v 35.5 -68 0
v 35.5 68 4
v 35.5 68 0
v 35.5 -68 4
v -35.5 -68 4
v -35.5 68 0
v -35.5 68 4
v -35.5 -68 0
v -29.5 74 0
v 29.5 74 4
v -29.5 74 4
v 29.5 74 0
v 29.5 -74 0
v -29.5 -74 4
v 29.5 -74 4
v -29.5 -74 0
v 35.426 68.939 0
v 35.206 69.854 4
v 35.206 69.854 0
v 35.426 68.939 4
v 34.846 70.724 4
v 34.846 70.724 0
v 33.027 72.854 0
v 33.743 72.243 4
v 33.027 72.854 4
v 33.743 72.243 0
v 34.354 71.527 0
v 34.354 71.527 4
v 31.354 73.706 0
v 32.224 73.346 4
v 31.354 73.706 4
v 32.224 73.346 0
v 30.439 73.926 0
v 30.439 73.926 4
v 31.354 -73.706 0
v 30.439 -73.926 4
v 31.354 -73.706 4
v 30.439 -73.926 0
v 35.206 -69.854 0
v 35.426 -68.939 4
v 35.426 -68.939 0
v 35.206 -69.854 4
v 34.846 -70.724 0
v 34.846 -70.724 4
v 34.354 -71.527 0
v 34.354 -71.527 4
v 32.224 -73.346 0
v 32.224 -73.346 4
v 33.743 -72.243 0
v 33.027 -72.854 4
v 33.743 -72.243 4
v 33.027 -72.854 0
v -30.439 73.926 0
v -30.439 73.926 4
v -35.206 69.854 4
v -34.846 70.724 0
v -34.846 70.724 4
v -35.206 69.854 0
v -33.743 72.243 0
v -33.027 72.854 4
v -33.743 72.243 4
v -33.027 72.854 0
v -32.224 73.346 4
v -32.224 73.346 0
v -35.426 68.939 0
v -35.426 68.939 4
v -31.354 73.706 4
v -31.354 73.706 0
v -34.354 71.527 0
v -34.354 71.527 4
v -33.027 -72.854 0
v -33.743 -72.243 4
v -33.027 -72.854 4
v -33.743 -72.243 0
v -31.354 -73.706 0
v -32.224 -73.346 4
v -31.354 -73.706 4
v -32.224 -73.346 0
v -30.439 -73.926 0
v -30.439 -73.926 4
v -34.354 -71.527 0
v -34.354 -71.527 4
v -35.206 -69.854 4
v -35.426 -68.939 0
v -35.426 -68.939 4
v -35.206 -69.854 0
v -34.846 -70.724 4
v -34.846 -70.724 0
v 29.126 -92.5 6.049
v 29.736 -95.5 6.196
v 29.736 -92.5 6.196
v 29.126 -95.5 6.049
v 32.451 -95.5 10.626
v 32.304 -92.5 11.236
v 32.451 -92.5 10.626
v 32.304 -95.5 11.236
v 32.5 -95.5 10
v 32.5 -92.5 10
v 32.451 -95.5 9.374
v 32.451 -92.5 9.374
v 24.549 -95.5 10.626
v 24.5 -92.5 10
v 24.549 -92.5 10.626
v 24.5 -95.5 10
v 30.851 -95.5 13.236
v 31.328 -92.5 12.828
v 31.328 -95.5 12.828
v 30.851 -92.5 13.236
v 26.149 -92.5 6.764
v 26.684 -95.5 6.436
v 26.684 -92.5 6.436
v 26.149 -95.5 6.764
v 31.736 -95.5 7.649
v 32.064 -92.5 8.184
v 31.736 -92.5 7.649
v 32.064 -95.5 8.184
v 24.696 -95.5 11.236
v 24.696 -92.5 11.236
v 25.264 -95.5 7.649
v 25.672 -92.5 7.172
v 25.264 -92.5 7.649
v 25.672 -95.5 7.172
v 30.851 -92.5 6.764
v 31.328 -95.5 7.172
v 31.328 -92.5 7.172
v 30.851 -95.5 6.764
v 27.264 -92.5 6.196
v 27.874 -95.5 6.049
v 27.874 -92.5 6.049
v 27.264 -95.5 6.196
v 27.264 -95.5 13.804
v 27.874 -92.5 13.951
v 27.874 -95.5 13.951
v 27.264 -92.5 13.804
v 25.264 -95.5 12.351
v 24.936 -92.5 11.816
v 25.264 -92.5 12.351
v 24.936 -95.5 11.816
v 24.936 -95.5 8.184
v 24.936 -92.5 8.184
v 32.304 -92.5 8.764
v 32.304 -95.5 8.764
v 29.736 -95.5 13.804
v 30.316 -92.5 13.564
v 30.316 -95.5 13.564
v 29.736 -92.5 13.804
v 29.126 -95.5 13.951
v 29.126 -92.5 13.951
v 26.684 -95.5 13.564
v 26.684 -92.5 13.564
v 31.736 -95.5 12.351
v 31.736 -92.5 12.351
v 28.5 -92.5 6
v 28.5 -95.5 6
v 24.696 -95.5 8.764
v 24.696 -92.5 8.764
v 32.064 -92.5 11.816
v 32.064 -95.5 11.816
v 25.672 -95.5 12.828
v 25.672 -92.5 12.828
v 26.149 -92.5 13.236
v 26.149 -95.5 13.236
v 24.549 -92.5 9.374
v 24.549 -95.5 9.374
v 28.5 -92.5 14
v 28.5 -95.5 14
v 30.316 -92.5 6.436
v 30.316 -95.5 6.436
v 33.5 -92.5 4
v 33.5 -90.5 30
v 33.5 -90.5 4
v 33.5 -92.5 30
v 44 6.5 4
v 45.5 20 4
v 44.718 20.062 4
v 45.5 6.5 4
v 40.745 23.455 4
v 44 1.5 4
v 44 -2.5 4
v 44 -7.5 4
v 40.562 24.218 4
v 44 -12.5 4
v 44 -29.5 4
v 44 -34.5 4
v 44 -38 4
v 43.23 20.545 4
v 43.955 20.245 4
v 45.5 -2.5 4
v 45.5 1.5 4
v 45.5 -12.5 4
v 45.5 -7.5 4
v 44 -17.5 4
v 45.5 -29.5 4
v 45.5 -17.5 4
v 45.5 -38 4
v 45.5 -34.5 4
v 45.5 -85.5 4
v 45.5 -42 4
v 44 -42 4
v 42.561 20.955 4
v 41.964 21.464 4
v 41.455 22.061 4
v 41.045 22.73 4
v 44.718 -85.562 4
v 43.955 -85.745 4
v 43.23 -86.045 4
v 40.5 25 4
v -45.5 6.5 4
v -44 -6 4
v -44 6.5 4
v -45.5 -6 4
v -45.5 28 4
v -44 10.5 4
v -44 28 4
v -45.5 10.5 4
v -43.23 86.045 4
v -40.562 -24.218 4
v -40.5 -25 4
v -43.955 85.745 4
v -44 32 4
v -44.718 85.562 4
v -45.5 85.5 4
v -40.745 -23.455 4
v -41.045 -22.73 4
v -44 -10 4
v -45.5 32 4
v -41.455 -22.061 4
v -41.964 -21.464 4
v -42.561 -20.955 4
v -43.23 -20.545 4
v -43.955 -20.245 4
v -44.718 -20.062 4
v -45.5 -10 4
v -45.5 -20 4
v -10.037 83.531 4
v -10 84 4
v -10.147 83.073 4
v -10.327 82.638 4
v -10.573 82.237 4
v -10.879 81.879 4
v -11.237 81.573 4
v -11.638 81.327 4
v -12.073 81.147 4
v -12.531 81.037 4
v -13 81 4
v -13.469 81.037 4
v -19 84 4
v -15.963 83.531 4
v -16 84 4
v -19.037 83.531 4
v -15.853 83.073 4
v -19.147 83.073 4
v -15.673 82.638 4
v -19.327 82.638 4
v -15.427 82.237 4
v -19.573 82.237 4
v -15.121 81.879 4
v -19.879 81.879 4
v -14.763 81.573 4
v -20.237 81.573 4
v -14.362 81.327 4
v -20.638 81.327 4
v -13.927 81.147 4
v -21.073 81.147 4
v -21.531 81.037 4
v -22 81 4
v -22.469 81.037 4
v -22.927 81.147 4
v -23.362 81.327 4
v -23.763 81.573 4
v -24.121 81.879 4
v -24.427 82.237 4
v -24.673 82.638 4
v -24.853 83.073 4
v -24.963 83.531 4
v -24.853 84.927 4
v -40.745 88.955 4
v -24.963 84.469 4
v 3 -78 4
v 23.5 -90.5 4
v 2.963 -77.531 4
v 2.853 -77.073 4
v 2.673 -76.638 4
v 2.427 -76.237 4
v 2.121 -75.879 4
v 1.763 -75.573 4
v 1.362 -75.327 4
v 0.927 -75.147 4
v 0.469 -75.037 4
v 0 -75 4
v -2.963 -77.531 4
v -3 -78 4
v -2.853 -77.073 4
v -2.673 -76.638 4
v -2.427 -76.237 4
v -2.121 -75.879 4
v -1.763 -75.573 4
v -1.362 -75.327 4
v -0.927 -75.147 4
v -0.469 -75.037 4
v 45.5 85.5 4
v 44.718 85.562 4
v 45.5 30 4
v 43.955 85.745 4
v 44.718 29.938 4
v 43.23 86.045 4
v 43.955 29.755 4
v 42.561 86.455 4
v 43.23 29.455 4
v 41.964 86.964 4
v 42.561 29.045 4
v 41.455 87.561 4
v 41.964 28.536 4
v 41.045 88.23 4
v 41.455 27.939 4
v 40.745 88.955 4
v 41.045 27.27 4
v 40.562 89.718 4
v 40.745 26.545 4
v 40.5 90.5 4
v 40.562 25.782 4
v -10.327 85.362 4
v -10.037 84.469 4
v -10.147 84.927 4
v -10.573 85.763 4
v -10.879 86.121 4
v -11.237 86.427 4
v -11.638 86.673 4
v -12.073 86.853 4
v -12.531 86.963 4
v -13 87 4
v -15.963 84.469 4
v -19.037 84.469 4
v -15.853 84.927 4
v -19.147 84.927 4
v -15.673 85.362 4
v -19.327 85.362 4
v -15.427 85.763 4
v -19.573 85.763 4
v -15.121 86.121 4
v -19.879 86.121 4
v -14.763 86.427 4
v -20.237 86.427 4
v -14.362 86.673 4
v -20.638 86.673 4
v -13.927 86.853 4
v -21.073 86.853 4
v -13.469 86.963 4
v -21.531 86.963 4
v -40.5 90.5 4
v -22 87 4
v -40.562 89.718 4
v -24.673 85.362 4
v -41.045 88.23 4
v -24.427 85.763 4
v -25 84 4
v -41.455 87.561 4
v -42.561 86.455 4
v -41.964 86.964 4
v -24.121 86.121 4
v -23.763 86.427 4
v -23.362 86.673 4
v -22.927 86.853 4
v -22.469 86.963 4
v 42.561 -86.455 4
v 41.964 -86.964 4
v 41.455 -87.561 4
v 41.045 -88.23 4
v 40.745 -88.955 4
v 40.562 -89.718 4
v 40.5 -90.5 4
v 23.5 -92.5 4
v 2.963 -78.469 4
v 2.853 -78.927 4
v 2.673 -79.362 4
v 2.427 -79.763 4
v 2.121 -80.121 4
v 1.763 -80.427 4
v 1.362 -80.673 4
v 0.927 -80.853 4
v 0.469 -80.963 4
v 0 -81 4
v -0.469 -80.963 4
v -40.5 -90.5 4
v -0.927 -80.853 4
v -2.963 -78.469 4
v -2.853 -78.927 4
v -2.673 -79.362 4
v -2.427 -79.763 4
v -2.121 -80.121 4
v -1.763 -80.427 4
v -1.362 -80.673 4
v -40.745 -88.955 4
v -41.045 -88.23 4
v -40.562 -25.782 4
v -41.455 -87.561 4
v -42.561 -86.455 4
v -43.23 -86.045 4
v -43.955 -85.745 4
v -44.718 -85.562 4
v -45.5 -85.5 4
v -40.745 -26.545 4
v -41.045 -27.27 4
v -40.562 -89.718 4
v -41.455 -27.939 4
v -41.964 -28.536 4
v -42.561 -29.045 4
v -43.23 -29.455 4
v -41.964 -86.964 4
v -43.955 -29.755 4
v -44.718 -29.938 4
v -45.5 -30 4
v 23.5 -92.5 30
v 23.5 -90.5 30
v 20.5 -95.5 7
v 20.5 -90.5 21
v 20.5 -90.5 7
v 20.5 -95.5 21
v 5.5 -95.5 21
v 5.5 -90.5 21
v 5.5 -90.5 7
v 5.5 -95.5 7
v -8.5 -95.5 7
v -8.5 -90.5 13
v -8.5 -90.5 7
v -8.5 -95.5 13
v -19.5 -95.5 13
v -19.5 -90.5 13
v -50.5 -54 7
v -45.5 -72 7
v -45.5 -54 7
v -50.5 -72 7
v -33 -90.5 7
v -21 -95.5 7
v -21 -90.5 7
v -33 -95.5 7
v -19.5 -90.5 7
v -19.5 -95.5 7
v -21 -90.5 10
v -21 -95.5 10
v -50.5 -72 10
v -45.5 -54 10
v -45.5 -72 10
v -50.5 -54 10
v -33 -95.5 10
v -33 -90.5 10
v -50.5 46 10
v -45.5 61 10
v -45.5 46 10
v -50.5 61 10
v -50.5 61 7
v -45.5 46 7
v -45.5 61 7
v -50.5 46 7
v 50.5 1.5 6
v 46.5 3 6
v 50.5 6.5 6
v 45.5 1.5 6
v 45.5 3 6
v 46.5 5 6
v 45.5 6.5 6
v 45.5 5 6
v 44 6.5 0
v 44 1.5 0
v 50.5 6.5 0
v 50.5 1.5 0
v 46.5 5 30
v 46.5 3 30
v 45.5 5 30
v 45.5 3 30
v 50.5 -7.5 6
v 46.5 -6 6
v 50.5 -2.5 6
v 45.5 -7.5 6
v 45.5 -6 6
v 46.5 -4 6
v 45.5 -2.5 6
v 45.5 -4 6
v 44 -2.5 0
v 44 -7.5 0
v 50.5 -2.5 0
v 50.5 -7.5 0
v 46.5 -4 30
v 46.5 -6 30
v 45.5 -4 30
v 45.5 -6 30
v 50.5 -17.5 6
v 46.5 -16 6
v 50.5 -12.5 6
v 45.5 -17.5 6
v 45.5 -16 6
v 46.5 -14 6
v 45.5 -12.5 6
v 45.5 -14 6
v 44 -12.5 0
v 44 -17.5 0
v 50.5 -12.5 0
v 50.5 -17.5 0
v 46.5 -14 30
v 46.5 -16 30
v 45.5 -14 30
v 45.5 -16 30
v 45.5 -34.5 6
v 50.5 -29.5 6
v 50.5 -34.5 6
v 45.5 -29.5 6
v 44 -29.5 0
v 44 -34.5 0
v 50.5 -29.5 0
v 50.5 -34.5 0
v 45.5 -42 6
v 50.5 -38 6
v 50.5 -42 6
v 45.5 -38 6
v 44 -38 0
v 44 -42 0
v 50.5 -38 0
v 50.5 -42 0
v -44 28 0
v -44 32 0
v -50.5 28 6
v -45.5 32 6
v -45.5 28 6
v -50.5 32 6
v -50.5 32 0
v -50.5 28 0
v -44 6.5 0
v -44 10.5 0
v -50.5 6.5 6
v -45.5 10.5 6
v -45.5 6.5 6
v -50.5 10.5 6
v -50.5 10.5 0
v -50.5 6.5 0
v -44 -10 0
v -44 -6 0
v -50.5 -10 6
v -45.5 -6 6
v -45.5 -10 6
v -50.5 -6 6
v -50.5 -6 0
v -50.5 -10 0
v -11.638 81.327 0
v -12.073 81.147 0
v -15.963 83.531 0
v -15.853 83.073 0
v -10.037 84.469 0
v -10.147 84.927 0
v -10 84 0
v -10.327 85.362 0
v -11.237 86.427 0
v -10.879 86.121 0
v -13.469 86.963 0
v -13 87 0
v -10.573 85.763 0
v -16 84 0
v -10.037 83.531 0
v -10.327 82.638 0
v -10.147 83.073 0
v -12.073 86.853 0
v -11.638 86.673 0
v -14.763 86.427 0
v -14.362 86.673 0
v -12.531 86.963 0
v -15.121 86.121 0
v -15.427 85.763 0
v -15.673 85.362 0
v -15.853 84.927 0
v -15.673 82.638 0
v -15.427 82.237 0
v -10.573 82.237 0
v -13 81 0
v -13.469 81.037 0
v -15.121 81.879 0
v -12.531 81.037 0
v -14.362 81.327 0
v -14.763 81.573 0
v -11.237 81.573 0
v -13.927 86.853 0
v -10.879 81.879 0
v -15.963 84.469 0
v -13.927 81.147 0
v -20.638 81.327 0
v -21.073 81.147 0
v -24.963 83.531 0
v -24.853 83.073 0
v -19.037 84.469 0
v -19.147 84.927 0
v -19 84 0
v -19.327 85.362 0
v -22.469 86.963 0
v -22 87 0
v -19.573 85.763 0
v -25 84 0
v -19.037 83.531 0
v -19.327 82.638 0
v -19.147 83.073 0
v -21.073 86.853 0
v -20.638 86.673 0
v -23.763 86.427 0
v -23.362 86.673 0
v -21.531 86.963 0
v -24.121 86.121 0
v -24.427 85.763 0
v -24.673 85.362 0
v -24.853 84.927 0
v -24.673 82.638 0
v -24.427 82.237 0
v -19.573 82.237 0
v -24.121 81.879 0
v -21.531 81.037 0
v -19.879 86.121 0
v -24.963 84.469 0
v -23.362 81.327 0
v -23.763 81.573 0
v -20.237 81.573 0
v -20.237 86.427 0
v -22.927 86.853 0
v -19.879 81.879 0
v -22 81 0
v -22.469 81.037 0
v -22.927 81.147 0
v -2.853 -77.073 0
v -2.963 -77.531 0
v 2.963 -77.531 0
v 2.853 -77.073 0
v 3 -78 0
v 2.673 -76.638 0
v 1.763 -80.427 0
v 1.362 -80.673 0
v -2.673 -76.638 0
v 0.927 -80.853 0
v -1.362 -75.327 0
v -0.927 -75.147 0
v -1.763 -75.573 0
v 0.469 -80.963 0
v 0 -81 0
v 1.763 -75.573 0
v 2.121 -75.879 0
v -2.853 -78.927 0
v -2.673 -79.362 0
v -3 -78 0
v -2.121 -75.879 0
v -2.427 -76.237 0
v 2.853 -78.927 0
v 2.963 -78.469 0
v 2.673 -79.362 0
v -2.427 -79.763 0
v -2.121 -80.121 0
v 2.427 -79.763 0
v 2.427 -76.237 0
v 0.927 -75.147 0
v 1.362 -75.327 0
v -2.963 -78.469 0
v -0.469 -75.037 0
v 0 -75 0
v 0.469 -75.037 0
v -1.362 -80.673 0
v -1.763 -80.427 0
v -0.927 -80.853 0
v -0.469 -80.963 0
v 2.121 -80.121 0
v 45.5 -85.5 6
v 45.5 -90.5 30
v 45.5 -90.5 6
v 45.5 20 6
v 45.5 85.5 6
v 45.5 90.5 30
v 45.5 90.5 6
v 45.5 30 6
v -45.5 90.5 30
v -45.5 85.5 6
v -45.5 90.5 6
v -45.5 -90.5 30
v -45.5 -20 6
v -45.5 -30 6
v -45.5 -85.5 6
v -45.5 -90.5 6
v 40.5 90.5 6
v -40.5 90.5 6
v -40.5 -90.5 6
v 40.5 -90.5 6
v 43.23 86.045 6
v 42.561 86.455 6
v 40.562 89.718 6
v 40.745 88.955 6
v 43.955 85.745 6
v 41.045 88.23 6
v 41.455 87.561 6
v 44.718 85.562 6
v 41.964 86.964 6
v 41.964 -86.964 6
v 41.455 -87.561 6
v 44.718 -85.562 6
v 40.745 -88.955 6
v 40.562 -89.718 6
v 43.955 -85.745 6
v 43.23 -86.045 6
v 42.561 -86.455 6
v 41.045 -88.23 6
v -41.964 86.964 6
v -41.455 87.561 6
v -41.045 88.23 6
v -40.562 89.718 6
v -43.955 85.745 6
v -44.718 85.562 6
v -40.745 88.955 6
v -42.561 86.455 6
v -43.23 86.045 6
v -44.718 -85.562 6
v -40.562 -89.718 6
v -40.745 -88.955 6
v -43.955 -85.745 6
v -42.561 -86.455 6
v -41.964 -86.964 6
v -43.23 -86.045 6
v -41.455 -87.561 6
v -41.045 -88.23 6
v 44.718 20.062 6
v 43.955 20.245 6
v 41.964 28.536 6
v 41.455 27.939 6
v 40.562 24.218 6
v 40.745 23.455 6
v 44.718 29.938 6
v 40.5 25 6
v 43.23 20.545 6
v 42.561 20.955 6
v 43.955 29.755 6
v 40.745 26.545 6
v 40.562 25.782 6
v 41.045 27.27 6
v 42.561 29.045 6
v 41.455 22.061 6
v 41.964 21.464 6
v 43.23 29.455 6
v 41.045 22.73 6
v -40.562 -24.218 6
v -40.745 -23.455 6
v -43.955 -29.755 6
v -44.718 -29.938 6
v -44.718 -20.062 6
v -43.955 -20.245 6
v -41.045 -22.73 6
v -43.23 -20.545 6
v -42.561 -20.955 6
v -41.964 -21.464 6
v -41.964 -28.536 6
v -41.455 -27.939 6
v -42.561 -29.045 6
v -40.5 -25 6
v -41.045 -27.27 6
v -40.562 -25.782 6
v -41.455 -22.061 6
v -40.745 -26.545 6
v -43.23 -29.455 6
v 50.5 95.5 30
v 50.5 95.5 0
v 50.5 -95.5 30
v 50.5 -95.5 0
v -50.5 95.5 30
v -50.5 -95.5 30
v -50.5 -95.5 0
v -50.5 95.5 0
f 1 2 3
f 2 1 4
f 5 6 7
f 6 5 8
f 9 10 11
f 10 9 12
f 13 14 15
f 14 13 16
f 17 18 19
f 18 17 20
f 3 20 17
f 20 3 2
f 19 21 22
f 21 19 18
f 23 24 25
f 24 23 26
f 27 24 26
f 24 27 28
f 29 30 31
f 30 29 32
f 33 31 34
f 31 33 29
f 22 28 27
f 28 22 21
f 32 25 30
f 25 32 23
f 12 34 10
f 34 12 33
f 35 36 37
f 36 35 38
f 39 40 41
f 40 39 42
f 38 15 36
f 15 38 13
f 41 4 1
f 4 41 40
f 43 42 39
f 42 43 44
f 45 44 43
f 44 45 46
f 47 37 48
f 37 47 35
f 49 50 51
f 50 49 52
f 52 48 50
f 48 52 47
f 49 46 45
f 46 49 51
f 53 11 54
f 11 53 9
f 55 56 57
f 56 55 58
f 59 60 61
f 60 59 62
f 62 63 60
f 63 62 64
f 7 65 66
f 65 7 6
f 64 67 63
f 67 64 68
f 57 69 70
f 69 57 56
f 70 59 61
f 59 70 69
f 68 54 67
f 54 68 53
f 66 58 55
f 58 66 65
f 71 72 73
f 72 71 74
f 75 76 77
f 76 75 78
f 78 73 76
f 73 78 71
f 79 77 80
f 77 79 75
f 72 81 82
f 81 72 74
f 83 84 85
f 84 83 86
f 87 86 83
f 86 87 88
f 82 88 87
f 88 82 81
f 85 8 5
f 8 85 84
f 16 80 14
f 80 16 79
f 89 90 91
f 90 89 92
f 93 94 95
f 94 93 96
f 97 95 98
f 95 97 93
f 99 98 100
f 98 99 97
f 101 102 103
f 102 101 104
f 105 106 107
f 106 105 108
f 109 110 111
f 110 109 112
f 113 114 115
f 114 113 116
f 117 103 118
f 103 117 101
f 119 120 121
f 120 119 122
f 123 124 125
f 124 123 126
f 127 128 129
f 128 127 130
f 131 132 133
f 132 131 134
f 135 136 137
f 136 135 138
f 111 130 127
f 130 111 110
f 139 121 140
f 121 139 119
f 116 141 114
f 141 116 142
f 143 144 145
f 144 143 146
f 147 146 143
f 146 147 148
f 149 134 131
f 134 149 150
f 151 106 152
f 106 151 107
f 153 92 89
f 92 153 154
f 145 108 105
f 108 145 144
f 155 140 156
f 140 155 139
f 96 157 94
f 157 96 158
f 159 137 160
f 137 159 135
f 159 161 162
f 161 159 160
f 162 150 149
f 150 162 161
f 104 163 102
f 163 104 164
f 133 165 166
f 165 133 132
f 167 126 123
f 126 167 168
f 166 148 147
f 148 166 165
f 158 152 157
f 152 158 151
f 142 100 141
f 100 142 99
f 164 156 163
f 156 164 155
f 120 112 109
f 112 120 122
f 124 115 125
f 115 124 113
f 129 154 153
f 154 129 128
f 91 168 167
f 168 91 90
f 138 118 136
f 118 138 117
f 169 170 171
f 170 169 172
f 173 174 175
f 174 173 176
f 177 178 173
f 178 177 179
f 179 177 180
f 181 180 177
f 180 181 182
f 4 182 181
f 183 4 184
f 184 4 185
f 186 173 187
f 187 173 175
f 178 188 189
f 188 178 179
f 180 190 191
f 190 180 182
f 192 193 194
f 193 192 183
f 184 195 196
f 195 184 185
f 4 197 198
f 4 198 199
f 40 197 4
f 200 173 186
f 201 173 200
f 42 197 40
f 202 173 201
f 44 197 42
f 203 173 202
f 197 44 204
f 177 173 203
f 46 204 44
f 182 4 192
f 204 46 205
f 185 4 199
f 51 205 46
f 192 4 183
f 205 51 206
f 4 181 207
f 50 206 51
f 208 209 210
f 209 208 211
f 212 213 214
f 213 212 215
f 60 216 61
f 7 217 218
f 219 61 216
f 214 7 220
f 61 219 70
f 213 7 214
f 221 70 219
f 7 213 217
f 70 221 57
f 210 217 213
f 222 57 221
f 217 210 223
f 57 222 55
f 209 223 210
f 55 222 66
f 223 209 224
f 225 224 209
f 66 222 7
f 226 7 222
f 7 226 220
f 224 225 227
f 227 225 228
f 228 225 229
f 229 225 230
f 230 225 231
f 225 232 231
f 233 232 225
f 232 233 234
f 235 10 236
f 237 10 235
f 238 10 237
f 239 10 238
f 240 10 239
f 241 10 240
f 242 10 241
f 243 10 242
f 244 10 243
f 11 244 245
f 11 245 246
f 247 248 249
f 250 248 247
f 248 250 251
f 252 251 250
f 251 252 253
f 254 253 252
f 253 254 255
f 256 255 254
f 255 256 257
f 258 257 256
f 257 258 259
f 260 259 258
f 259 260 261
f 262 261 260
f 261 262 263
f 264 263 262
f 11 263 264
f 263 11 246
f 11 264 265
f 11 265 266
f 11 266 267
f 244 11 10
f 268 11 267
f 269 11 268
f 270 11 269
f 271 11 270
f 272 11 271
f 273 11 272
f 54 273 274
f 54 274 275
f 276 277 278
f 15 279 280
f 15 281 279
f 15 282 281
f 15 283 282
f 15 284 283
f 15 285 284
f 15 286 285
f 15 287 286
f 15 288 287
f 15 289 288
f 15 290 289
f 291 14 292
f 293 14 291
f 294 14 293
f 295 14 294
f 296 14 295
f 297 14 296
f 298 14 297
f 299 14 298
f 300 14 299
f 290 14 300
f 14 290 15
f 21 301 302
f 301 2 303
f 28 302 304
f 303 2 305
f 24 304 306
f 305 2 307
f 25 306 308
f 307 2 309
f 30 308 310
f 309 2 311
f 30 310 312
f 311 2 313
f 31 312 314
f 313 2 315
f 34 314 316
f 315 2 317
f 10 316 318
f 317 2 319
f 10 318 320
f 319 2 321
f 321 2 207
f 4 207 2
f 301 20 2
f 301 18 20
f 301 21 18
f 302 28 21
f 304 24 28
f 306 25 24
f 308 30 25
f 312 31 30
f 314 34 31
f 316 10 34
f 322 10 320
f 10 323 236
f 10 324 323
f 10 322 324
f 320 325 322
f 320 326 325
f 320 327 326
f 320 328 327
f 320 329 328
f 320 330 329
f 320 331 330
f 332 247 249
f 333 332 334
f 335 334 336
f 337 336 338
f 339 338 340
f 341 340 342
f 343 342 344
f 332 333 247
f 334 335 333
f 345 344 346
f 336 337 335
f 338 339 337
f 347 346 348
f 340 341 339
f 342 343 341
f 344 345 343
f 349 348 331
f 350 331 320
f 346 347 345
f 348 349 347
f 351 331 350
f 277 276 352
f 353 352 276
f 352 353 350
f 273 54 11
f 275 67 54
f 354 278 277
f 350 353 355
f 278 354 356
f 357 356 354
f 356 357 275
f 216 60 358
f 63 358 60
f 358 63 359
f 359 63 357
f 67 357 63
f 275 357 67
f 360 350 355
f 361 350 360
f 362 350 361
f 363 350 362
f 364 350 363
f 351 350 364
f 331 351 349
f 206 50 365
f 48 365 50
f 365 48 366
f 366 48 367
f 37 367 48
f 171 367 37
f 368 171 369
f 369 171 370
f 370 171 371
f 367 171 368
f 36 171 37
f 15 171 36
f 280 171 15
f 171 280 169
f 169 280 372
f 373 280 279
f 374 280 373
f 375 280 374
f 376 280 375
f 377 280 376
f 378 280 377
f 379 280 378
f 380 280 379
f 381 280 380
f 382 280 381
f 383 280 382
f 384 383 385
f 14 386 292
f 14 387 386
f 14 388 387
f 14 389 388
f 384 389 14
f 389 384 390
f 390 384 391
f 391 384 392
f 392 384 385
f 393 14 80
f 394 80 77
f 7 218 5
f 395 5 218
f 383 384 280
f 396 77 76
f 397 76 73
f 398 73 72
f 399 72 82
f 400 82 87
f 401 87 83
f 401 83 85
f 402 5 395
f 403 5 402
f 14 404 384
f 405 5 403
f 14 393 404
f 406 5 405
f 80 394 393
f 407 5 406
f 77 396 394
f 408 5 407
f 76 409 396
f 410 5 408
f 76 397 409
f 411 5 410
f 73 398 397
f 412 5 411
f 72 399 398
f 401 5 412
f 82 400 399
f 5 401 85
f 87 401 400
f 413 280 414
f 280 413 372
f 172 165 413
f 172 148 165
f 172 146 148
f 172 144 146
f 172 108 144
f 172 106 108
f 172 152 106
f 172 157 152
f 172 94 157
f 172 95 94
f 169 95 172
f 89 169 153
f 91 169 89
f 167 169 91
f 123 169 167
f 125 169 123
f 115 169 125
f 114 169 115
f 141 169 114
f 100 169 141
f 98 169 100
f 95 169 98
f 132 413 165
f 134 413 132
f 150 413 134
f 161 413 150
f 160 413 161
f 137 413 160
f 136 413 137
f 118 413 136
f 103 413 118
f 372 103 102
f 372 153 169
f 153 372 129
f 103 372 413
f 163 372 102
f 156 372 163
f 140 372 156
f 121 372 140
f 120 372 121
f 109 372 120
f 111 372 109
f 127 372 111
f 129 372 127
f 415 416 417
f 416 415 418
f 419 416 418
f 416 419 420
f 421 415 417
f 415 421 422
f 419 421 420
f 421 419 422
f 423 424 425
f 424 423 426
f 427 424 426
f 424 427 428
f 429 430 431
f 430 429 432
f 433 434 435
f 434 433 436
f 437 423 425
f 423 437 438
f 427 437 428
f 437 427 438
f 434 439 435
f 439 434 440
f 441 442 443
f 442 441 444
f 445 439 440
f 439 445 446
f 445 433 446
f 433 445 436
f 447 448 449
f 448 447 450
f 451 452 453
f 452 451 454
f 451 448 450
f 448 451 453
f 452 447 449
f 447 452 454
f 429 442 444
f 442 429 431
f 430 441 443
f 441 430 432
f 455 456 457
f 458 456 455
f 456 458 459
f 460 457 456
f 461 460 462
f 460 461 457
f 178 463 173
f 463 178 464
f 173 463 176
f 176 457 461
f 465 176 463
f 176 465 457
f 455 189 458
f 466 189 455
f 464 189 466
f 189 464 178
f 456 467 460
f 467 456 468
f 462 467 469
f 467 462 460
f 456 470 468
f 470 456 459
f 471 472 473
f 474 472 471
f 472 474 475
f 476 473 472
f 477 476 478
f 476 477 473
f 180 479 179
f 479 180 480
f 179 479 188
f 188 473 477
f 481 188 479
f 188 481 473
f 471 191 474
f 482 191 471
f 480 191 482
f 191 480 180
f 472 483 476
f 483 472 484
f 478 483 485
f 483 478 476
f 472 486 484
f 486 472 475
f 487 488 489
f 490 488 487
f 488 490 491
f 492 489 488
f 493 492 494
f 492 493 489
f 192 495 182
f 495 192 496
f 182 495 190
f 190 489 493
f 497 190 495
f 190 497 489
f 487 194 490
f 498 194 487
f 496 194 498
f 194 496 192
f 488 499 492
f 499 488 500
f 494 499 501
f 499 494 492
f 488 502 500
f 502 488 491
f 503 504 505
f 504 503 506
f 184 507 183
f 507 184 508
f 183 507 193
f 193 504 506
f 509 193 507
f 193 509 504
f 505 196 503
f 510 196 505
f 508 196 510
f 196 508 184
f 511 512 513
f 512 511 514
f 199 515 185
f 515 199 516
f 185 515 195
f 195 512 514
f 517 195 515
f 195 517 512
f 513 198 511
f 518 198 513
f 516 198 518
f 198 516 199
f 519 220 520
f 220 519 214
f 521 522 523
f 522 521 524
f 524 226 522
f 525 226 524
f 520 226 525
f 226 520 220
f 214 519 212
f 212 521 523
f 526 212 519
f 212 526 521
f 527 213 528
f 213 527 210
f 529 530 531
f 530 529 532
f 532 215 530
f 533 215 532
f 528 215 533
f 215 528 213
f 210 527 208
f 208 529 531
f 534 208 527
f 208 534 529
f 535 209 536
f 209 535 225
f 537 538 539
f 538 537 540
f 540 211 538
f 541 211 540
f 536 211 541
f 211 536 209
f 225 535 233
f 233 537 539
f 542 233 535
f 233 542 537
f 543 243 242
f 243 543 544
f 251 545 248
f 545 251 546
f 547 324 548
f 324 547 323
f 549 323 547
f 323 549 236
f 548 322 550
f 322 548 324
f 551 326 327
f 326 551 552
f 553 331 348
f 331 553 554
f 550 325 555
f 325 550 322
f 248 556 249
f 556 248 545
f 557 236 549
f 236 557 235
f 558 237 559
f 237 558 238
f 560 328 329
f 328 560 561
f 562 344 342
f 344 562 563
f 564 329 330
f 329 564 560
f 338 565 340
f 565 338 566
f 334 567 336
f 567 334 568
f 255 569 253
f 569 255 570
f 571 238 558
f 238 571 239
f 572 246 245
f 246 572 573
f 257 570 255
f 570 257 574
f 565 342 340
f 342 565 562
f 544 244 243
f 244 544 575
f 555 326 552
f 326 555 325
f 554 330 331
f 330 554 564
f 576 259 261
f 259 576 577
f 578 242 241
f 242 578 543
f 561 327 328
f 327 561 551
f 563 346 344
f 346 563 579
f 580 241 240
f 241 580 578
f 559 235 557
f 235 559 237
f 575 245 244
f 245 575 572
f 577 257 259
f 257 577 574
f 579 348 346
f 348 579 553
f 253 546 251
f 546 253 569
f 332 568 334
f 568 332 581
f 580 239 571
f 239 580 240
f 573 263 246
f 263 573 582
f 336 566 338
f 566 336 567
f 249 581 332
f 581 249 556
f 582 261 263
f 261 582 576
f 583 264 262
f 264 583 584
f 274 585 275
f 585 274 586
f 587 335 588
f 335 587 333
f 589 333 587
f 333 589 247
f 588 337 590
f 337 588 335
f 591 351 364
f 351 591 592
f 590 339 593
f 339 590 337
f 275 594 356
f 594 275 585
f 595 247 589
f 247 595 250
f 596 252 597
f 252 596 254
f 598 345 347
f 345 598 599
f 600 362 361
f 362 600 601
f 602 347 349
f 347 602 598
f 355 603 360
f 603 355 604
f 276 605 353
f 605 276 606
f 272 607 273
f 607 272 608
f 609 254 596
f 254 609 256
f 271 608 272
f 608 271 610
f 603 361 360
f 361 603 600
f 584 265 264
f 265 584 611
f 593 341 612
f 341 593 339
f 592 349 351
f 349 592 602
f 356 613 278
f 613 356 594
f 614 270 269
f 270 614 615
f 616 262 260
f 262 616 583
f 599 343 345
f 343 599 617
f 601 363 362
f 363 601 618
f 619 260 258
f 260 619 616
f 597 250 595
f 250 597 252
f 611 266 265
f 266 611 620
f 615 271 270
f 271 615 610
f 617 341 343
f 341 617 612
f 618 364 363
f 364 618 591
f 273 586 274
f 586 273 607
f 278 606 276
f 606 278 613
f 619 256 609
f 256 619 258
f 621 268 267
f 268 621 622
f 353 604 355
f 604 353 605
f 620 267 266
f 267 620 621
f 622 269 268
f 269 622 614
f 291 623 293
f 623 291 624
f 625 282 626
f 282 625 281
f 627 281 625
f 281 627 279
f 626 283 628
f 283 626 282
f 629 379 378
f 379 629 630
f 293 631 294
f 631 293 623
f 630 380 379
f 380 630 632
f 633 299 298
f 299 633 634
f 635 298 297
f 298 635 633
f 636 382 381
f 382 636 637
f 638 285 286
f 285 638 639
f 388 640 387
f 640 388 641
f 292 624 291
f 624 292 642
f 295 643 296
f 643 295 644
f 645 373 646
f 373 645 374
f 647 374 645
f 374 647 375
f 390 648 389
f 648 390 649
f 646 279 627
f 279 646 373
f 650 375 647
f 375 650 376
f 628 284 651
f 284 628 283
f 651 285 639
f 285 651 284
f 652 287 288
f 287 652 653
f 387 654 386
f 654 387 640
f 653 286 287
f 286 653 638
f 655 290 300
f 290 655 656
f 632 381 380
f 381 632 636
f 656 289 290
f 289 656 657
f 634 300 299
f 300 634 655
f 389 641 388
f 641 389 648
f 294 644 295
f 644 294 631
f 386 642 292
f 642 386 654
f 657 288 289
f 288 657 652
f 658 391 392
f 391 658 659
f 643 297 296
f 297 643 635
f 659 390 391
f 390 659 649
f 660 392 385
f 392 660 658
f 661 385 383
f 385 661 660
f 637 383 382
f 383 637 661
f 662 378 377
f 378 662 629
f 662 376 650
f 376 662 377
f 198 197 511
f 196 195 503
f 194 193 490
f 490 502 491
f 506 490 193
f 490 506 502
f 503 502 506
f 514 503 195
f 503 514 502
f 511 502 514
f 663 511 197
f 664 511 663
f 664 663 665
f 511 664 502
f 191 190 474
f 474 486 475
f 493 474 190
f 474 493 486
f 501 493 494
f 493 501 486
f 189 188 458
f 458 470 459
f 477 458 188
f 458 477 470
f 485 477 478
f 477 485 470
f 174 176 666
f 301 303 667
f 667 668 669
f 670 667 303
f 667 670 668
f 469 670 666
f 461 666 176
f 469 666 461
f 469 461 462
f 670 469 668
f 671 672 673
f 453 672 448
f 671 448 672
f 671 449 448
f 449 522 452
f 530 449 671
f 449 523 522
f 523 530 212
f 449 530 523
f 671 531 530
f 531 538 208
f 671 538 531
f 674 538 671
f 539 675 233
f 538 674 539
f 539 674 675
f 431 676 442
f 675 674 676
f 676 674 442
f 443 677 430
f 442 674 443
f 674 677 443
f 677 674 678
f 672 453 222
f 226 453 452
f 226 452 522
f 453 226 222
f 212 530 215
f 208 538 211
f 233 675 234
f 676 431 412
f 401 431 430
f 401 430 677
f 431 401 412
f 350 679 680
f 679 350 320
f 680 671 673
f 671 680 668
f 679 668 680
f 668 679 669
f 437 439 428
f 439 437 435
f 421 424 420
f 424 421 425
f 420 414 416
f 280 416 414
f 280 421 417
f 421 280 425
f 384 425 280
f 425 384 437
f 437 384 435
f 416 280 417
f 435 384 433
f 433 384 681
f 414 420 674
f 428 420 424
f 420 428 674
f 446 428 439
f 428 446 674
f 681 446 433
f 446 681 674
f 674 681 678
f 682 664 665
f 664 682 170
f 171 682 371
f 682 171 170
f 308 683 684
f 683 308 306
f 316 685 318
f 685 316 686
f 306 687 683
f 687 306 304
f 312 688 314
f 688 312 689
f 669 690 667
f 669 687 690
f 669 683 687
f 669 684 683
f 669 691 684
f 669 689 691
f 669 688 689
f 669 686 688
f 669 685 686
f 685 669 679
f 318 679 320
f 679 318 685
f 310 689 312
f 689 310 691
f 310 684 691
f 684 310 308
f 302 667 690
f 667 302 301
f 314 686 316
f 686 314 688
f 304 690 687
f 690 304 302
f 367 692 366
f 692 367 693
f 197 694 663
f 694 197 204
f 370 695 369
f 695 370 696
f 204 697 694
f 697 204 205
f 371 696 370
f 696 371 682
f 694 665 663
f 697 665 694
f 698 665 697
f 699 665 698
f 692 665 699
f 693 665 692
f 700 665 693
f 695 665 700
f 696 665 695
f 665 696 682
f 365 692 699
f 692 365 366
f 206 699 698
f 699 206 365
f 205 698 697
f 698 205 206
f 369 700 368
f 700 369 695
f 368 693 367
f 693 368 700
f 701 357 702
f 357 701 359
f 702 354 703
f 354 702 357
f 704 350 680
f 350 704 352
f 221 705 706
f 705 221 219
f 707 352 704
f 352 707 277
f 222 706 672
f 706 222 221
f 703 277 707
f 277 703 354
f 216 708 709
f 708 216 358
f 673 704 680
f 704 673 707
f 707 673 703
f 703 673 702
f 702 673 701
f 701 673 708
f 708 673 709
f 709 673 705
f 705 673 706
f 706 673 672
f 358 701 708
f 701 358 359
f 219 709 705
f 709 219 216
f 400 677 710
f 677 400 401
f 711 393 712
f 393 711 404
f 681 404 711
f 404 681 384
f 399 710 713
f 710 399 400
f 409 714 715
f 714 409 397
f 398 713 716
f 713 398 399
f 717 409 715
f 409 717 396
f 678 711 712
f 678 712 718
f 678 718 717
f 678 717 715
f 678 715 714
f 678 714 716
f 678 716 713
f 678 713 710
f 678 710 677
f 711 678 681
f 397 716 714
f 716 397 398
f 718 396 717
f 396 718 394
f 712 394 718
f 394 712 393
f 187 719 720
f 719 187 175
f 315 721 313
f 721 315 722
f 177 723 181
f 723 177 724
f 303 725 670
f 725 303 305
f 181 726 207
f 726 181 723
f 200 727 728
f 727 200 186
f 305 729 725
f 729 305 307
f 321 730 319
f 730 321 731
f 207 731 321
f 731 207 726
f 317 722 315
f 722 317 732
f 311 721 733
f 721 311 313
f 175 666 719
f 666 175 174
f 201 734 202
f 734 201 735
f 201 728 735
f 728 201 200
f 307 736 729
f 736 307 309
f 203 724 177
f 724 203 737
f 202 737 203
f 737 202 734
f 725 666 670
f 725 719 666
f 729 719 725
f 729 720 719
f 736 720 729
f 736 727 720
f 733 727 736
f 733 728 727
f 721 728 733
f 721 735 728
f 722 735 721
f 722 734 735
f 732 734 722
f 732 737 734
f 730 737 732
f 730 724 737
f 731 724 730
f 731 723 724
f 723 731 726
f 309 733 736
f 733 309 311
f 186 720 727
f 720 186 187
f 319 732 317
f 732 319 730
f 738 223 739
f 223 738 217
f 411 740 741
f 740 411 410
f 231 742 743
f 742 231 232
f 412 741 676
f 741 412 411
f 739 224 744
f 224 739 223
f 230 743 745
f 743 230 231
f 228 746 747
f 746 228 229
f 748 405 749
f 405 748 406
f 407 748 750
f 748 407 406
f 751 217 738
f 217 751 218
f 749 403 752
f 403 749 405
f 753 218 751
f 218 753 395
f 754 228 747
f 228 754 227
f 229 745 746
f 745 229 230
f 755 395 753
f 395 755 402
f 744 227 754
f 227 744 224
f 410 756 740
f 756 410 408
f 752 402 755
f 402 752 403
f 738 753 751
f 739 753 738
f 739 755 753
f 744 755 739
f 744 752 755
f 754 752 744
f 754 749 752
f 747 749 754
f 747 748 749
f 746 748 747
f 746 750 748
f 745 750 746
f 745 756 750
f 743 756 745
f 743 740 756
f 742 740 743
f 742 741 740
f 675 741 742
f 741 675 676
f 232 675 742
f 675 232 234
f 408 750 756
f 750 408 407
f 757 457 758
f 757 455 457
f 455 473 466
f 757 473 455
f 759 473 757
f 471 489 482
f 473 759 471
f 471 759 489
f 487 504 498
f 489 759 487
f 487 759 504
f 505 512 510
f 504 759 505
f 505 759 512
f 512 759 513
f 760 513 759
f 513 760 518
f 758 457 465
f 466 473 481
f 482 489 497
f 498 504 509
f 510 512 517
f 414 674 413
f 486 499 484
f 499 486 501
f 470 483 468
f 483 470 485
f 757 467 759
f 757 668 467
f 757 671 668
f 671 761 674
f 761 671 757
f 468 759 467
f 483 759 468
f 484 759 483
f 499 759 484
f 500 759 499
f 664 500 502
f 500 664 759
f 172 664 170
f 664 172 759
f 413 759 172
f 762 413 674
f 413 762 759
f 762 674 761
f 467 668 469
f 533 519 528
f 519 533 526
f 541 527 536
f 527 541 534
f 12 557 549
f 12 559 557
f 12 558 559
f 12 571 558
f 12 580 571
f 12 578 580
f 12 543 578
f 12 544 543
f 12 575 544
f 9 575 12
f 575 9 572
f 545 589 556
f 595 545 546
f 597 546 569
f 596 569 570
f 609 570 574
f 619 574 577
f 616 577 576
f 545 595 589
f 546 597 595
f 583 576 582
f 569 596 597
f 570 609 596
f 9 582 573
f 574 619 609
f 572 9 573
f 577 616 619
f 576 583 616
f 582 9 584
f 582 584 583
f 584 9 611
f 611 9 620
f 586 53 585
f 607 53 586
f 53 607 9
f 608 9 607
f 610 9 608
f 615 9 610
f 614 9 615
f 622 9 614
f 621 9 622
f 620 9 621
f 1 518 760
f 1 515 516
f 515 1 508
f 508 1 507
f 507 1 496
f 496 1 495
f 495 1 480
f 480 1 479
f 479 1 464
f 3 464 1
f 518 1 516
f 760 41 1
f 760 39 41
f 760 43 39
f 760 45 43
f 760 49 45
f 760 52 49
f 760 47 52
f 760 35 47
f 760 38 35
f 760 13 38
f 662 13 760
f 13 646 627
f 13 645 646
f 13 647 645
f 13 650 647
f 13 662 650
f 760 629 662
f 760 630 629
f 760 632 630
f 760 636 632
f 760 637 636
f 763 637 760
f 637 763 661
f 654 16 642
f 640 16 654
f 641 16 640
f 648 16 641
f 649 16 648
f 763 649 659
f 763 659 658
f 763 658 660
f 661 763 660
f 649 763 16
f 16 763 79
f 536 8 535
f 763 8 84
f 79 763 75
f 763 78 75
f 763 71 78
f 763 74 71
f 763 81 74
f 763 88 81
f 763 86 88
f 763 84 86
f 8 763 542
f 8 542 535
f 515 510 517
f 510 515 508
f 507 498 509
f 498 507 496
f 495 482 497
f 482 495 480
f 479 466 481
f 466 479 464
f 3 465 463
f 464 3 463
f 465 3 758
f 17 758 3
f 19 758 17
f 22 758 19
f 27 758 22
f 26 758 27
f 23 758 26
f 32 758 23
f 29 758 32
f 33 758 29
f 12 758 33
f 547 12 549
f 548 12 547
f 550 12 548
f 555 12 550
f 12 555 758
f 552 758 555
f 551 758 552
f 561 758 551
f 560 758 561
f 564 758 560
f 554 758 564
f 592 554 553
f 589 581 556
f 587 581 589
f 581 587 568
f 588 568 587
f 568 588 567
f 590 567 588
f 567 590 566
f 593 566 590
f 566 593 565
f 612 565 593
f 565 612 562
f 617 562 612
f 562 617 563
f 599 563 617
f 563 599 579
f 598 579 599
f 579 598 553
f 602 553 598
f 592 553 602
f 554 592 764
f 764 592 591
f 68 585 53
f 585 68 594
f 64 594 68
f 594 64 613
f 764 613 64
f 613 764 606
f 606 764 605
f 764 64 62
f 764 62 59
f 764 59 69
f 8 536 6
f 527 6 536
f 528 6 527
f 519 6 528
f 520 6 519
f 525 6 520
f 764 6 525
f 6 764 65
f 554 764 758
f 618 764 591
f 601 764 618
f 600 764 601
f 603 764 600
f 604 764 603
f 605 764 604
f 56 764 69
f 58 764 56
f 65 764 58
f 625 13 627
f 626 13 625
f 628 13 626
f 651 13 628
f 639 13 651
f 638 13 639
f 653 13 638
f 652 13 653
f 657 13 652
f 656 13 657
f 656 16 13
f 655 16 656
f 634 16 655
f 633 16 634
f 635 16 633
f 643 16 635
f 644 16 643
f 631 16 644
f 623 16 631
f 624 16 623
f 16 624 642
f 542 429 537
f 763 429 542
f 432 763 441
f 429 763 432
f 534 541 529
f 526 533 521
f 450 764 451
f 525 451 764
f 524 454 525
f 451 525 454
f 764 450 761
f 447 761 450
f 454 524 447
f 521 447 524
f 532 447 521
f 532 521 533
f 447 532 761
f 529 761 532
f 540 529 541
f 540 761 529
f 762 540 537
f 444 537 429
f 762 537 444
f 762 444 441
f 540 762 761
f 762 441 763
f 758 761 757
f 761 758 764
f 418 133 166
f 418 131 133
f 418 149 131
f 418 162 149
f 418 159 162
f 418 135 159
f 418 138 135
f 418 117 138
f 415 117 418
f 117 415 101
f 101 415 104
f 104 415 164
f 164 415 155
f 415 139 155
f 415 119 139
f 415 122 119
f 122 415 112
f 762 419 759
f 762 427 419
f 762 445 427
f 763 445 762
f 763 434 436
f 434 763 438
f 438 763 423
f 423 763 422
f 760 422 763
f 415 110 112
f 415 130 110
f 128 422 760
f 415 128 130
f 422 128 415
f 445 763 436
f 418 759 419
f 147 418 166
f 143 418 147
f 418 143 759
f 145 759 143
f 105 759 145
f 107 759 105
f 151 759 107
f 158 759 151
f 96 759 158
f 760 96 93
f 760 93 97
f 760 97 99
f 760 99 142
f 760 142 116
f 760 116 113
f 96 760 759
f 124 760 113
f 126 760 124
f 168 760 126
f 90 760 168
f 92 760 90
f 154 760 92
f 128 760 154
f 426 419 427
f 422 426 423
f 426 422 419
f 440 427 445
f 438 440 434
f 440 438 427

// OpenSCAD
/*
	Upside-down aproach for a devkit case: The devkit is put
	in from behind, display first. So all components
	(batteryholder, cam, ...) are freely reachable and
	sensitive parts (like TS-connector) are covered. And the
	processor heat can be taken care of as its just open - a
	fan can be mounted.

	The idea is to plug the devkit in (with the audio
	connector first) and put some hot glue to the corners to
	fix it.
*/
$fn=40;
module centered_cube(x, y, z) {
	translate([-x/2, -y/2, 0]) cube([x, y, z]);
}

inf = 200; //
border = 5; // case border width
display_height = 4; //
display_width = 71;
display_length = 148;
display_rounded = 6;
pcb_width = 91;
pcb_length = 181;
pcb_distance = 6; // from display surface

difference() {
	centered_cube(pcb_width+2*border, pcb_length+2*border, 30);
	difference() {
		union() {
			// display
			translate([0, 0, -inf/2]) union() {
				translate([0, 0, 0]) centered_cube(display_width, display_length-2*display_rounded, inf);
				translate([0, 0, 0]) centered_cube(display_width-2*display_rounded, display_length, inf);
				dx = display_width/2-display_rounded;
				dy = display_length/2-display_rounded;
				translate([dx, dy, 0]) cylinder(inf, display_rounded, display_rounded);
				translate([dx, -dy, 0]) cylinder(inf, display_rounded, display_rounded);
				translate([-dx, dy, 0]) cylinder(inf, display_rounded, display_rounded);
				translate([-dx, -dy, 0]) cylinder(inf, display_rounded, display_rounded);
			}
			// pcb
			translate([0, 0, display_height]) centered_cube(pcb_width, pcb_length, inf);
			// bottom holes
			let(dy = pcb_length / 2, dz = pcb_distance + 1) { // thickness of pcb
				// headphonejack
				translate([28.5, -dy, dz+3]) rotate([90, 0, 0]) cylinder(inf, 4, 4);
				translate([28.5, -dy, display_height]) centered_cube(10, 4, inf);
				// ethernet
				translate([13, -dy, dz]) centered_cube(15, inf, 14);
				// HDMI:
				// translate([-3, -dy, dz]) centered_cube(12, inf, 3);
				// USB-C:
				translate([-14, -dy, dz]) centered_cube(11, inf, 6);
				// SD Card:
				translate([-27, -dy, dz]) centered_cube(12, inf, 3);
				// SIM:
				translate([inf/2, 53.5, dz]) centered_cube(inf, 15, 3);
				// Securecard:
				translate([inf/2, -63, dz]) centered_cube(inf, 18, 3);
			}
			// side holes
			let(dx = pcb_width / 2 + 2, dz = pcb_distance-inf) {
				// Killswitch bt
				translate([dx, 4, dz]) centered_cube(border+2, 5, inf);
				translate([dx-2, 4, -inf/2]) centered_cube(2, 2, inf);
				// Killswitch wifi
				translate([dx, -5, dz]) centered_cube(border+2, 5, inf);
				translate([dx-2, -5, -inf/2]) centered_cube(2, 2, inf);
				// Killswitch mic/cam
				translate([dx, -15, dz]) centered_cube(border+2, 5, inf);
				translate([dx-2, -15, -inf/2]) centered_cube(2, 2, inf);
				// Switch bootmode:
				translate([dx, -32, dz]) centered_cube(border+2, 5, inf);
				// Button reset:
				translate([dx, -40, dz]) centered_cube(border+2, 4, inf);
				// Button power:
				translate([-dx, 30, dz]) centered_cube(border+2, 4, inf);
				// Button speaker up:
				translate([-dx, 8.5, dz]) centered_cube(border+2, 4, inf);
				// Button speaker down:
				translate([-dx, -8, dz]) centered_cube(border+2, 4, inf);
			}
			// front holes
			let(dz = -inf/2) {
				// ambient/aproximity sensors
				translate([-13, 84, dz]) cylinder(inf, 3, 3);
				translate([-22, 84, dz]) cylinder(inf, 3, 3);
				// Microphone:
				translate([0, -78, dz]) cylinder(inf, 3, 3);
			}
		}
		union() {
			// pillars
			let(dx = pcb_width / 2, dy = pcb_length / 2) {
				// corners
				translate([dx, dy, 0]) cylinder(6, border, border);
				translate([dx, -dy, 0]) cylinder(6, border, border);
				translate([-dx, dy, 0]) cylinder(6, border, border);
				translate([-dx, -dy, 0]) cylinder(6, border, border);
				// middle
				translate([dx, 25, 0]) cylinder(6, border, border);
				translate([-dx, -25, 0]) cylinder(6, border, border);
			}
		}
	}
}
